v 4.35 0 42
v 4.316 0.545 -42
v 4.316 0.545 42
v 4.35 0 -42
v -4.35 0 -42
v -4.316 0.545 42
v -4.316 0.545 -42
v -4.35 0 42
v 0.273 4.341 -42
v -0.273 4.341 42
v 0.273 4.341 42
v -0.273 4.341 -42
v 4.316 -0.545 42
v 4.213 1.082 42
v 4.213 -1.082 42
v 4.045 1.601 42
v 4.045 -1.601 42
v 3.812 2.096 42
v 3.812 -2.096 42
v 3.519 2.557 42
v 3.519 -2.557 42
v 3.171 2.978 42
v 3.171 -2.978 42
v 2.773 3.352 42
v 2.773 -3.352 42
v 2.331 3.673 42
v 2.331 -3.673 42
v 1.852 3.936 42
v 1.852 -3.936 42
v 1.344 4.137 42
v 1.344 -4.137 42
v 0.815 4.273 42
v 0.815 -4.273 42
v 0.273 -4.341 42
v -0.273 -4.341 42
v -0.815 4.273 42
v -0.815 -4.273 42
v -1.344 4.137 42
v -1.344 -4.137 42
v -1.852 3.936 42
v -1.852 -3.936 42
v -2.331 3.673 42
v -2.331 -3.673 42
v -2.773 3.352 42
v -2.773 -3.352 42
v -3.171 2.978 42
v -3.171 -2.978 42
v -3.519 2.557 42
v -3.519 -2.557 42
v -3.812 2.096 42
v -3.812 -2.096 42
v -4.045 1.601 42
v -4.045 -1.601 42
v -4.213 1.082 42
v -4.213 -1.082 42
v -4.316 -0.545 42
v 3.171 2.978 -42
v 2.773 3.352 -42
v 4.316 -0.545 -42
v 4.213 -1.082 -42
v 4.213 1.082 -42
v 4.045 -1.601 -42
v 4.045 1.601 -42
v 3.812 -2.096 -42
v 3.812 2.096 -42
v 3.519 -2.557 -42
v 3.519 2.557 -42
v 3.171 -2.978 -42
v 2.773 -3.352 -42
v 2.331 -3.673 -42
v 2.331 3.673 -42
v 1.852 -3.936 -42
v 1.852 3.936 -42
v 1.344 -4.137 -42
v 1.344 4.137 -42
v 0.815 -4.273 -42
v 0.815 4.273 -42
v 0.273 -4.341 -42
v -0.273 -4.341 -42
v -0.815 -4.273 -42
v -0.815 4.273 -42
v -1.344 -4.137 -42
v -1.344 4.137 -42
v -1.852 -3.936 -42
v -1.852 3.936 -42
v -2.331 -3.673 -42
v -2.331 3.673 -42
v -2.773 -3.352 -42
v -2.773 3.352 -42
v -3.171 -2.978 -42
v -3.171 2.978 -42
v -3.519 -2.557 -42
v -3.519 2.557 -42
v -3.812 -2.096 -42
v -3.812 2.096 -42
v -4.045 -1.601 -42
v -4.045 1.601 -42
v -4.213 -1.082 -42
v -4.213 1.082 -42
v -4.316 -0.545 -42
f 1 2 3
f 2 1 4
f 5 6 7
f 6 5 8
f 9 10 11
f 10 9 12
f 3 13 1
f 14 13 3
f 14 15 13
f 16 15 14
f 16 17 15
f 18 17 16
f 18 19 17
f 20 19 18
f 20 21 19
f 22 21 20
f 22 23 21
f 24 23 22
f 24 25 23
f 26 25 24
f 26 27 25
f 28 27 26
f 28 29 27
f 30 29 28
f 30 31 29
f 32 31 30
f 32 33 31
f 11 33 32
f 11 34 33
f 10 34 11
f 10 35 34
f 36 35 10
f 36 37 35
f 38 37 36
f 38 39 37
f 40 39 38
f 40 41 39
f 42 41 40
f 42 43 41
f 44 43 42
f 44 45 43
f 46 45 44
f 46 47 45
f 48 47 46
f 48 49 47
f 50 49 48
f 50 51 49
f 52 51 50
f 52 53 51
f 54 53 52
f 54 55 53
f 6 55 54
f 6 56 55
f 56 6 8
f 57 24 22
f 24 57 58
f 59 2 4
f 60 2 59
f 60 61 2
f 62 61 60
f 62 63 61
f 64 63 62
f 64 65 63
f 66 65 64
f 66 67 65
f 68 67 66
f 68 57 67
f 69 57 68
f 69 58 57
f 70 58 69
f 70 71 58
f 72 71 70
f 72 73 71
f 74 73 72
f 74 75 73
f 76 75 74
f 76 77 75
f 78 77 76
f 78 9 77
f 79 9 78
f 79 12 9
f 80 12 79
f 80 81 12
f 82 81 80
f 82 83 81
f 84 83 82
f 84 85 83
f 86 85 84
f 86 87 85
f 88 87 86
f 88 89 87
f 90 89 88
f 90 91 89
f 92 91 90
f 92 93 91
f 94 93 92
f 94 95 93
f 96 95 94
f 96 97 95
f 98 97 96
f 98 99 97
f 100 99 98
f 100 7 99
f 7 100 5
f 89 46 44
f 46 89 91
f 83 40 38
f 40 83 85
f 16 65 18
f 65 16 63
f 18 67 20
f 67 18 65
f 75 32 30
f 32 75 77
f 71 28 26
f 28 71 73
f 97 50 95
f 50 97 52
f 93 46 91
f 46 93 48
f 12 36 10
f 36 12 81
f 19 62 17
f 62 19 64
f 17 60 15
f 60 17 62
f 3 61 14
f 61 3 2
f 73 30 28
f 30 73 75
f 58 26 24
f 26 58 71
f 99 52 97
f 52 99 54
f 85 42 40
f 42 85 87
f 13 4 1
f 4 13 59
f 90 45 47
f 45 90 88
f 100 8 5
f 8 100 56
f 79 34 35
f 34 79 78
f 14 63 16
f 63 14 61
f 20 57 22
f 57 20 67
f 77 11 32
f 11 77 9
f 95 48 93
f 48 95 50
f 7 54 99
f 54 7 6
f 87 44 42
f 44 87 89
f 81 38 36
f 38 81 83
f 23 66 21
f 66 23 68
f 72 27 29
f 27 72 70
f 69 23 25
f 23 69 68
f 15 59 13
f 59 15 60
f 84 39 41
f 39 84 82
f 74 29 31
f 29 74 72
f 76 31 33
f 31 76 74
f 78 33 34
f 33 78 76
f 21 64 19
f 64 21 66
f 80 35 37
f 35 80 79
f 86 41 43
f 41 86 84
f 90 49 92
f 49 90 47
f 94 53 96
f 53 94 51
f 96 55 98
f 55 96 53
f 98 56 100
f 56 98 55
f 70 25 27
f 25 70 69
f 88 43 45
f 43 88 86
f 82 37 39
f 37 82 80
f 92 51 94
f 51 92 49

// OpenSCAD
$fn = 50;


difference() {
	union() {
		translate(v = [0, 0, -42.0000000000]) {
			cylinder(h = 84, r = 4.3500000000);
		}
	}
	union() {
		translate(v = [0, 0, -100.0000000000]) {
			cylinder(h = 200, r = 0);
		}
	}
}
